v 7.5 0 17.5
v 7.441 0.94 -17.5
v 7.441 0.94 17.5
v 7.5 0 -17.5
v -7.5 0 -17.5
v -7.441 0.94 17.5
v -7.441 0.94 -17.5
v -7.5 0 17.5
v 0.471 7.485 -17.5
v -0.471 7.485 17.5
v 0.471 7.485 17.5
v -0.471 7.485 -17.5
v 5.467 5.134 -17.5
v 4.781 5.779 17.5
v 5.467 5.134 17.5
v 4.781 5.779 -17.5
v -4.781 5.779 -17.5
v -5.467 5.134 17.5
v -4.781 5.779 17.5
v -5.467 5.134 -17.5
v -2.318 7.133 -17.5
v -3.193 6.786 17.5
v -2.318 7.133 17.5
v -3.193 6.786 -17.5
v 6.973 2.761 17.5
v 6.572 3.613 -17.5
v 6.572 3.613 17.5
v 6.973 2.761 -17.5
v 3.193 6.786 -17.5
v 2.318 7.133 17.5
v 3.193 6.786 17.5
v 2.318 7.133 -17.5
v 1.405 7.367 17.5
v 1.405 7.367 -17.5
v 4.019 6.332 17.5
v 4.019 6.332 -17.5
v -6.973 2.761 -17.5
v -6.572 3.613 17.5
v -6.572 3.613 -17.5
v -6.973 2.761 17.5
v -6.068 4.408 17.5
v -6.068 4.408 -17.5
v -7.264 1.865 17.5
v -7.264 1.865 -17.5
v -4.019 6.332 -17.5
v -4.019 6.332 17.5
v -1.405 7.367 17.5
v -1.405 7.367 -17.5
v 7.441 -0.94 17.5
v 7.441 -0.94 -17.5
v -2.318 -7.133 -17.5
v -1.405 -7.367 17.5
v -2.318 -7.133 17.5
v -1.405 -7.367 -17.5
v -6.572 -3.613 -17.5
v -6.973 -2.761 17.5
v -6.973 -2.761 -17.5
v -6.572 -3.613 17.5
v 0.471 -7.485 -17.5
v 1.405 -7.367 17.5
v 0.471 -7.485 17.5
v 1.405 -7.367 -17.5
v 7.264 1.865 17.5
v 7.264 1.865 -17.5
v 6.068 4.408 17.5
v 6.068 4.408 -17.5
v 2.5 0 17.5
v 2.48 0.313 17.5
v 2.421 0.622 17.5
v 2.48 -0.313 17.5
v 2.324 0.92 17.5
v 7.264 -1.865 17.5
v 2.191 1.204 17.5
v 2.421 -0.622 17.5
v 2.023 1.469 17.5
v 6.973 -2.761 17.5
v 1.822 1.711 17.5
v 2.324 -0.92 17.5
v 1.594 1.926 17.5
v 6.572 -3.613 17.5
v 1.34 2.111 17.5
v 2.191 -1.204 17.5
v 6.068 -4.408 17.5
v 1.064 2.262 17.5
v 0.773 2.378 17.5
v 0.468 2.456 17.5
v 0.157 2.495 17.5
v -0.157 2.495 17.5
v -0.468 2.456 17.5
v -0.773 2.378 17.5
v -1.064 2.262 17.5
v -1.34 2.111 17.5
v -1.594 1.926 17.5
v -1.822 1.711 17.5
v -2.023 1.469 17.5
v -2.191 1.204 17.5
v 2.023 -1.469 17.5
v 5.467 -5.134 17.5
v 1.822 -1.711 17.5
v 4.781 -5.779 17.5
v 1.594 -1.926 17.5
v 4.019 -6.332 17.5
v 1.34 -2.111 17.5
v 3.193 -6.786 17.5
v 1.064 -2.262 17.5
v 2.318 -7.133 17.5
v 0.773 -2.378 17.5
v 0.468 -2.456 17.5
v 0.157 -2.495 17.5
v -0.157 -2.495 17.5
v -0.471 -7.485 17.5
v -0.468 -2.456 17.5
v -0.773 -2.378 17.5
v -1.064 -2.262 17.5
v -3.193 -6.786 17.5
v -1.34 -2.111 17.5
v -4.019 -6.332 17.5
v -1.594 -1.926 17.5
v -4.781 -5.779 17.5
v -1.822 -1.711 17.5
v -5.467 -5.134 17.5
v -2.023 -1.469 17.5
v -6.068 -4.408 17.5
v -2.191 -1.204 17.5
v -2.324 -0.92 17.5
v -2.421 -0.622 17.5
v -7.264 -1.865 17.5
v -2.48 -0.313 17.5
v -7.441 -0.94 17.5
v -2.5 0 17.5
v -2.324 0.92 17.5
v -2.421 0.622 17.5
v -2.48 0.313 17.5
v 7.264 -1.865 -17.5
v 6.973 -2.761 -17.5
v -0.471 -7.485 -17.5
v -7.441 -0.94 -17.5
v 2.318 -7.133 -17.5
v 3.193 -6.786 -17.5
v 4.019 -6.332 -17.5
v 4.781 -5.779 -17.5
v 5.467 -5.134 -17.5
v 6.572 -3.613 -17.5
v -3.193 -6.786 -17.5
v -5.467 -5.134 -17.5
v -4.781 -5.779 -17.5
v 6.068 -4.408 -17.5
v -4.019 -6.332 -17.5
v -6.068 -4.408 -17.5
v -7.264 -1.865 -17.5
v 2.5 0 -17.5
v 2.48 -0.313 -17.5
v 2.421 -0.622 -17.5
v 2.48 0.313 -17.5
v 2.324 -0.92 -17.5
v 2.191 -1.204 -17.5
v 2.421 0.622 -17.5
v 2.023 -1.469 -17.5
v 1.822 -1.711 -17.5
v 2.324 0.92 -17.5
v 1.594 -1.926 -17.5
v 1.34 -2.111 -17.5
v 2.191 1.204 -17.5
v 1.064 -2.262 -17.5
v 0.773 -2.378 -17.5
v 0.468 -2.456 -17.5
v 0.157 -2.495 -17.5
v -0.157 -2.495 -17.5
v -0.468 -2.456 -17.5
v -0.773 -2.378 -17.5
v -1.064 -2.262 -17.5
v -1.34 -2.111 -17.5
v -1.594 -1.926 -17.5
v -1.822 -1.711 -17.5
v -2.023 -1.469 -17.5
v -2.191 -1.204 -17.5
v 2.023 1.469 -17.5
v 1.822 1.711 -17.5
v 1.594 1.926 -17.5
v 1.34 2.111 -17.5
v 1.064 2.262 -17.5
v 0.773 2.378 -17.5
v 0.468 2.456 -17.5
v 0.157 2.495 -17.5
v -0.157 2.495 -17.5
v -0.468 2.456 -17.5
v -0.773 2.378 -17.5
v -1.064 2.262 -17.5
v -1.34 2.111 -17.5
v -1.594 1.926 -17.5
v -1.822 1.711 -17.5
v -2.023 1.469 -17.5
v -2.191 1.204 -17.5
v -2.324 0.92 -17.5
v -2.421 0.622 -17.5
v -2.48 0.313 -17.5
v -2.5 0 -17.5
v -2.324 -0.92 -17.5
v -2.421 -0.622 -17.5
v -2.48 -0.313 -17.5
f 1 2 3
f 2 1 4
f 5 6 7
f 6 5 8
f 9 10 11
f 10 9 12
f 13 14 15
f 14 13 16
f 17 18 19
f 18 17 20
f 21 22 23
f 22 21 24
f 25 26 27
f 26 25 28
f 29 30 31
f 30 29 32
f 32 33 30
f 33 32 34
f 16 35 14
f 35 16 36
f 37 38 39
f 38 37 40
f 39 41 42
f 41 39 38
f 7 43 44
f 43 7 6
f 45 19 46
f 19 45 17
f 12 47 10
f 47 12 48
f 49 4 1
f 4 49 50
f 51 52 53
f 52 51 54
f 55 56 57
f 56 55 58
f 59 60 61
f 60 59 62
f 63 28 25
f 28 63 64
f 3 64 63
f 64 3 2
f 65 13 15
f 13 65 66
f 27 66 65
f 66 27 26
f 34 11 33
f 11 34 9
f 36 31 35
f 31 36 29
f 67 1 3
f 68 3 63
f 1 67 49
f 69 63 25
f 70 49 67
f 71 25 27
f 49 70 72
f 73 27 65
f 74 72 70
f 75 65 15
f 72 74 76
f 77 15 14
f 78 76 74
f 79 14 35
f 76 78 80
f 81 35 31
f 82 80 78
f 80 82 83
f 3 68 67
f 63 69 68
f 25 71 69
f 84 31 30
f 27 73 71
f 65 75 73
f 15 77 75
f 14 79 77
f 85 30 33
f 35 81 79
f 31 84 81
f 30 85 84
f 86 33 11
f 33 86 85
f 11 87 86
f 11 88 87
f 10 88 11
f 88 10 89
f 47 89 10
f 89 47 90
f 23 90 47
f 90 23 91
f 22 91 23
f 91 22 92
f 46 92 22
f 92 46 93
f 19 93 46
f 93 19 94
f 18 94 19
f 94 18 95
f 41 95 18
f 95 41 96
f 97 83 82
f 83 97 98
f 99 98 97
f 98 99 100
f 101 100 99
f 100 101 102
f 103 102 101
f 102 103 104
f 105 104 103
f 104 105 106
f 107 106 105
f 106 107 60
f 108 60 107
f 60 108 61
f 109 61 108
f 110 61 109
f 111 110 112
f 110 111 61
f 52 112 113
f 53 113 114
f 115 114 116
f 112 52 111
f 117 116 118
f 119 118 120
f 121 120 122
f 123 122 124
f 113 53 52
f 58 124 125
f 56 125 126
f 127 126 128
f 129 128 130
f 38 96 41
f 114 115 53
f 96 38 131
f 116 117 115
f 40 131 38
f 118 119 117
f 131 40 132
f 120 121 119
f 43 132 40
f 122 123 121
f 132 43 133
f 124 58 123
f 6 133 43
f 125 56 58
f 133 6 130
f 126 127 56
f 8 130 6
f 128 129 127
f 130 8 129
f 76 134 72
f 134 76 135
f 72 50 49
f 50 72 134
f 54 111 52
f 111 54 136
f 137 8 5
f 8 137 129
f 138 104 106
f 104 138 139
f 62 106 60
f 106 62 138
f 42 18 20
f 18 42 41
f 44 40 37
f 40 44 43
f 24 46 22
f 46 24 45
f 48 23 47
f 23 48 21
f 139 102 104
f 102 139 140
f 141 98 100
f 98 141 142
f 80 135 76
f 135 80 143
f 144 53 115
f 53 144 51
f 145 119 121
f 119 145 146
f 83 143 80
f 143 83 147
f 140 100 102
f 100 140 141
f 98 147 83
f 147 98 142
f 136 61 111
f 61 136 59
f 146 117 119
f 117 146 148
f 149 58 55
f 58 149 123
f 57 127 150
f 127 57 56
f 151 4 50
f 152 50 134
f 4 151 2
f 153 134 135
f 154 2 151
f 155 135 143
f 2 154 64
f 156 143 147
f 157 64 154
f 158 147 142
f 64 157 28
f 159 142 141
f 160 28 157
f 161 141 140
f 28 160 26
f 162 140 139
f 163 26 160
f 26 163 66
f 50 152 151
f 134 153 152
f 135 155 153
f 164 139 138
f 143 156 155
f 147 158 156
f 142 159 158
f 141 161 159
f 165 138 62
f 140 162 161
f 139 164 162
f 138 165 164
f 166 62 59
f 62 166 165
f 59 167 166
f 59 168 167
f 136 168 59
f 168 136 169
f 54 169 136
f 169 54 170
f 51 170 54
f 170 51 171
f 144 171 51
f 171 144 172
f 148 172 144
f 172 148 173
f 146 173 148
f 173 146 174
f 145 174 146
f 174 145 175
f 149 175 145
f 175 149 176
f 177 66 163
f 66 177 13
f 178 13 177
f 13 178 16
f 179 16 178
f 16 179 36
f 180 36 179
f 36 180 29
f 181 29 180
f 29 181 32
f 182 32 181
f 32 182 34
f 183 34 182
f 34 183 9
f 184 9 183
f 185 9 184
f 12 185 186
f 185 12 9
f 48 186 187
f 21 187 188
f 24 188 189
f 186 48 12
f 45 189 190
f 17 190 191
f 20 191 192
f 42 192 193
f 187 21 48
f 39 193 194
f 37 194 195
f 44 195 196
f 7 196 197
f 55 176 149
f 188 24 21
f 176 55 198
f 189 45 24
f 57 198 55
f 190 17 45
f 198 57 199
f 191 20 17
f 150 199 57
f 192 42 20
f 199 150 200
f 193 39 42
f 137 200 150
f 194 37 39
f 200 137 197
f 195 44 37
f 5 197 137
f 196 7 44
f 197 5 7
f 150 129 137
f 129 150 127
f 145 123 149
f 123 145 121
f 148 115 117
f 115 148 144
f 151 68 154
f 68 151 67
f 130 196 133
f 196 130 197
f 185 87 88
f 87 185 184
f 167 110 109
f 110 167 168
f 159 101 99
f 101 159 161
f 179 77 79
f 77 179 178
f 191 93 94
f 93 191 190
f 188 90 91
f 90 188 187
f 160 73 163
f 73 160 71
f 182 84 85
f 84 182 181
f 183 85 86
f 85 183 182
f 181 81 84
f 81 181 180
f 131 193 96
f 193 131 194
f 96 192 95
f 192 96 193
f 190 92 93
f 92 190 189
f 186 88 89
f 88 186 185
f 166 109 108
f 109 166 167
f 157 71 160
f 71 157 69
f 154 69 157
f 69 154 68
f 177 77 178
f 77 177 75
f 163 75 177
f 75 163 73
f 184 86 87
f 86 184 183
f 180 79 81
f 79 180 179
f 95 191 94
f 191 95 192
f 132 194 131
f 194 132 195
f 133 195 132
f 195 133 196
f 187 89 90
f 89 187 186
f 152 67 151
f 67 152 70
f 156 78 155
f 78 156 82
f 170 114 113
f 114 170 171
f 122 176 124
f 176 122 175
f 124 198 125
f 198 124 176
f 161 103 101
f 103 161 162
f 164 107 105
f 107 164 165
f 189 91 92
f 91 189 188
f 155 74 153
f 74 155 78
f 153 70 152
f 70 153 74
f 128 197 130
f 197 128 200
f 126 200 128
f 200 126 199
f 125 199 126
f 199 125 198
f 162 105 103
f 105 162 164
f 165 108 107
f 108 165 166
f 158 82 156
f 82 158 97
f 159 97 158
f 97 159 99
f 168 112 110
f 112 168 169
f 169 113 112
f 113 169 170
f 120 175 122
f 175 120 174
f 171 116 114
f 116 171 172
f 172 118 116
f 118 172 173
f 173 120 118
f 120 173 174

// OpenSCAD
$fn = 50;


difference() {
	union() {
		translate(v = [0, 0, -17.5000000000]) {
			cylinder(h = 35, r = 7.5000000000);
		}
	}
	union() {
		translate(v = [0, 0, -100.0000000000]) {
			cylinder(h = 200, r = 2.5000000000);
		}
	}
}
